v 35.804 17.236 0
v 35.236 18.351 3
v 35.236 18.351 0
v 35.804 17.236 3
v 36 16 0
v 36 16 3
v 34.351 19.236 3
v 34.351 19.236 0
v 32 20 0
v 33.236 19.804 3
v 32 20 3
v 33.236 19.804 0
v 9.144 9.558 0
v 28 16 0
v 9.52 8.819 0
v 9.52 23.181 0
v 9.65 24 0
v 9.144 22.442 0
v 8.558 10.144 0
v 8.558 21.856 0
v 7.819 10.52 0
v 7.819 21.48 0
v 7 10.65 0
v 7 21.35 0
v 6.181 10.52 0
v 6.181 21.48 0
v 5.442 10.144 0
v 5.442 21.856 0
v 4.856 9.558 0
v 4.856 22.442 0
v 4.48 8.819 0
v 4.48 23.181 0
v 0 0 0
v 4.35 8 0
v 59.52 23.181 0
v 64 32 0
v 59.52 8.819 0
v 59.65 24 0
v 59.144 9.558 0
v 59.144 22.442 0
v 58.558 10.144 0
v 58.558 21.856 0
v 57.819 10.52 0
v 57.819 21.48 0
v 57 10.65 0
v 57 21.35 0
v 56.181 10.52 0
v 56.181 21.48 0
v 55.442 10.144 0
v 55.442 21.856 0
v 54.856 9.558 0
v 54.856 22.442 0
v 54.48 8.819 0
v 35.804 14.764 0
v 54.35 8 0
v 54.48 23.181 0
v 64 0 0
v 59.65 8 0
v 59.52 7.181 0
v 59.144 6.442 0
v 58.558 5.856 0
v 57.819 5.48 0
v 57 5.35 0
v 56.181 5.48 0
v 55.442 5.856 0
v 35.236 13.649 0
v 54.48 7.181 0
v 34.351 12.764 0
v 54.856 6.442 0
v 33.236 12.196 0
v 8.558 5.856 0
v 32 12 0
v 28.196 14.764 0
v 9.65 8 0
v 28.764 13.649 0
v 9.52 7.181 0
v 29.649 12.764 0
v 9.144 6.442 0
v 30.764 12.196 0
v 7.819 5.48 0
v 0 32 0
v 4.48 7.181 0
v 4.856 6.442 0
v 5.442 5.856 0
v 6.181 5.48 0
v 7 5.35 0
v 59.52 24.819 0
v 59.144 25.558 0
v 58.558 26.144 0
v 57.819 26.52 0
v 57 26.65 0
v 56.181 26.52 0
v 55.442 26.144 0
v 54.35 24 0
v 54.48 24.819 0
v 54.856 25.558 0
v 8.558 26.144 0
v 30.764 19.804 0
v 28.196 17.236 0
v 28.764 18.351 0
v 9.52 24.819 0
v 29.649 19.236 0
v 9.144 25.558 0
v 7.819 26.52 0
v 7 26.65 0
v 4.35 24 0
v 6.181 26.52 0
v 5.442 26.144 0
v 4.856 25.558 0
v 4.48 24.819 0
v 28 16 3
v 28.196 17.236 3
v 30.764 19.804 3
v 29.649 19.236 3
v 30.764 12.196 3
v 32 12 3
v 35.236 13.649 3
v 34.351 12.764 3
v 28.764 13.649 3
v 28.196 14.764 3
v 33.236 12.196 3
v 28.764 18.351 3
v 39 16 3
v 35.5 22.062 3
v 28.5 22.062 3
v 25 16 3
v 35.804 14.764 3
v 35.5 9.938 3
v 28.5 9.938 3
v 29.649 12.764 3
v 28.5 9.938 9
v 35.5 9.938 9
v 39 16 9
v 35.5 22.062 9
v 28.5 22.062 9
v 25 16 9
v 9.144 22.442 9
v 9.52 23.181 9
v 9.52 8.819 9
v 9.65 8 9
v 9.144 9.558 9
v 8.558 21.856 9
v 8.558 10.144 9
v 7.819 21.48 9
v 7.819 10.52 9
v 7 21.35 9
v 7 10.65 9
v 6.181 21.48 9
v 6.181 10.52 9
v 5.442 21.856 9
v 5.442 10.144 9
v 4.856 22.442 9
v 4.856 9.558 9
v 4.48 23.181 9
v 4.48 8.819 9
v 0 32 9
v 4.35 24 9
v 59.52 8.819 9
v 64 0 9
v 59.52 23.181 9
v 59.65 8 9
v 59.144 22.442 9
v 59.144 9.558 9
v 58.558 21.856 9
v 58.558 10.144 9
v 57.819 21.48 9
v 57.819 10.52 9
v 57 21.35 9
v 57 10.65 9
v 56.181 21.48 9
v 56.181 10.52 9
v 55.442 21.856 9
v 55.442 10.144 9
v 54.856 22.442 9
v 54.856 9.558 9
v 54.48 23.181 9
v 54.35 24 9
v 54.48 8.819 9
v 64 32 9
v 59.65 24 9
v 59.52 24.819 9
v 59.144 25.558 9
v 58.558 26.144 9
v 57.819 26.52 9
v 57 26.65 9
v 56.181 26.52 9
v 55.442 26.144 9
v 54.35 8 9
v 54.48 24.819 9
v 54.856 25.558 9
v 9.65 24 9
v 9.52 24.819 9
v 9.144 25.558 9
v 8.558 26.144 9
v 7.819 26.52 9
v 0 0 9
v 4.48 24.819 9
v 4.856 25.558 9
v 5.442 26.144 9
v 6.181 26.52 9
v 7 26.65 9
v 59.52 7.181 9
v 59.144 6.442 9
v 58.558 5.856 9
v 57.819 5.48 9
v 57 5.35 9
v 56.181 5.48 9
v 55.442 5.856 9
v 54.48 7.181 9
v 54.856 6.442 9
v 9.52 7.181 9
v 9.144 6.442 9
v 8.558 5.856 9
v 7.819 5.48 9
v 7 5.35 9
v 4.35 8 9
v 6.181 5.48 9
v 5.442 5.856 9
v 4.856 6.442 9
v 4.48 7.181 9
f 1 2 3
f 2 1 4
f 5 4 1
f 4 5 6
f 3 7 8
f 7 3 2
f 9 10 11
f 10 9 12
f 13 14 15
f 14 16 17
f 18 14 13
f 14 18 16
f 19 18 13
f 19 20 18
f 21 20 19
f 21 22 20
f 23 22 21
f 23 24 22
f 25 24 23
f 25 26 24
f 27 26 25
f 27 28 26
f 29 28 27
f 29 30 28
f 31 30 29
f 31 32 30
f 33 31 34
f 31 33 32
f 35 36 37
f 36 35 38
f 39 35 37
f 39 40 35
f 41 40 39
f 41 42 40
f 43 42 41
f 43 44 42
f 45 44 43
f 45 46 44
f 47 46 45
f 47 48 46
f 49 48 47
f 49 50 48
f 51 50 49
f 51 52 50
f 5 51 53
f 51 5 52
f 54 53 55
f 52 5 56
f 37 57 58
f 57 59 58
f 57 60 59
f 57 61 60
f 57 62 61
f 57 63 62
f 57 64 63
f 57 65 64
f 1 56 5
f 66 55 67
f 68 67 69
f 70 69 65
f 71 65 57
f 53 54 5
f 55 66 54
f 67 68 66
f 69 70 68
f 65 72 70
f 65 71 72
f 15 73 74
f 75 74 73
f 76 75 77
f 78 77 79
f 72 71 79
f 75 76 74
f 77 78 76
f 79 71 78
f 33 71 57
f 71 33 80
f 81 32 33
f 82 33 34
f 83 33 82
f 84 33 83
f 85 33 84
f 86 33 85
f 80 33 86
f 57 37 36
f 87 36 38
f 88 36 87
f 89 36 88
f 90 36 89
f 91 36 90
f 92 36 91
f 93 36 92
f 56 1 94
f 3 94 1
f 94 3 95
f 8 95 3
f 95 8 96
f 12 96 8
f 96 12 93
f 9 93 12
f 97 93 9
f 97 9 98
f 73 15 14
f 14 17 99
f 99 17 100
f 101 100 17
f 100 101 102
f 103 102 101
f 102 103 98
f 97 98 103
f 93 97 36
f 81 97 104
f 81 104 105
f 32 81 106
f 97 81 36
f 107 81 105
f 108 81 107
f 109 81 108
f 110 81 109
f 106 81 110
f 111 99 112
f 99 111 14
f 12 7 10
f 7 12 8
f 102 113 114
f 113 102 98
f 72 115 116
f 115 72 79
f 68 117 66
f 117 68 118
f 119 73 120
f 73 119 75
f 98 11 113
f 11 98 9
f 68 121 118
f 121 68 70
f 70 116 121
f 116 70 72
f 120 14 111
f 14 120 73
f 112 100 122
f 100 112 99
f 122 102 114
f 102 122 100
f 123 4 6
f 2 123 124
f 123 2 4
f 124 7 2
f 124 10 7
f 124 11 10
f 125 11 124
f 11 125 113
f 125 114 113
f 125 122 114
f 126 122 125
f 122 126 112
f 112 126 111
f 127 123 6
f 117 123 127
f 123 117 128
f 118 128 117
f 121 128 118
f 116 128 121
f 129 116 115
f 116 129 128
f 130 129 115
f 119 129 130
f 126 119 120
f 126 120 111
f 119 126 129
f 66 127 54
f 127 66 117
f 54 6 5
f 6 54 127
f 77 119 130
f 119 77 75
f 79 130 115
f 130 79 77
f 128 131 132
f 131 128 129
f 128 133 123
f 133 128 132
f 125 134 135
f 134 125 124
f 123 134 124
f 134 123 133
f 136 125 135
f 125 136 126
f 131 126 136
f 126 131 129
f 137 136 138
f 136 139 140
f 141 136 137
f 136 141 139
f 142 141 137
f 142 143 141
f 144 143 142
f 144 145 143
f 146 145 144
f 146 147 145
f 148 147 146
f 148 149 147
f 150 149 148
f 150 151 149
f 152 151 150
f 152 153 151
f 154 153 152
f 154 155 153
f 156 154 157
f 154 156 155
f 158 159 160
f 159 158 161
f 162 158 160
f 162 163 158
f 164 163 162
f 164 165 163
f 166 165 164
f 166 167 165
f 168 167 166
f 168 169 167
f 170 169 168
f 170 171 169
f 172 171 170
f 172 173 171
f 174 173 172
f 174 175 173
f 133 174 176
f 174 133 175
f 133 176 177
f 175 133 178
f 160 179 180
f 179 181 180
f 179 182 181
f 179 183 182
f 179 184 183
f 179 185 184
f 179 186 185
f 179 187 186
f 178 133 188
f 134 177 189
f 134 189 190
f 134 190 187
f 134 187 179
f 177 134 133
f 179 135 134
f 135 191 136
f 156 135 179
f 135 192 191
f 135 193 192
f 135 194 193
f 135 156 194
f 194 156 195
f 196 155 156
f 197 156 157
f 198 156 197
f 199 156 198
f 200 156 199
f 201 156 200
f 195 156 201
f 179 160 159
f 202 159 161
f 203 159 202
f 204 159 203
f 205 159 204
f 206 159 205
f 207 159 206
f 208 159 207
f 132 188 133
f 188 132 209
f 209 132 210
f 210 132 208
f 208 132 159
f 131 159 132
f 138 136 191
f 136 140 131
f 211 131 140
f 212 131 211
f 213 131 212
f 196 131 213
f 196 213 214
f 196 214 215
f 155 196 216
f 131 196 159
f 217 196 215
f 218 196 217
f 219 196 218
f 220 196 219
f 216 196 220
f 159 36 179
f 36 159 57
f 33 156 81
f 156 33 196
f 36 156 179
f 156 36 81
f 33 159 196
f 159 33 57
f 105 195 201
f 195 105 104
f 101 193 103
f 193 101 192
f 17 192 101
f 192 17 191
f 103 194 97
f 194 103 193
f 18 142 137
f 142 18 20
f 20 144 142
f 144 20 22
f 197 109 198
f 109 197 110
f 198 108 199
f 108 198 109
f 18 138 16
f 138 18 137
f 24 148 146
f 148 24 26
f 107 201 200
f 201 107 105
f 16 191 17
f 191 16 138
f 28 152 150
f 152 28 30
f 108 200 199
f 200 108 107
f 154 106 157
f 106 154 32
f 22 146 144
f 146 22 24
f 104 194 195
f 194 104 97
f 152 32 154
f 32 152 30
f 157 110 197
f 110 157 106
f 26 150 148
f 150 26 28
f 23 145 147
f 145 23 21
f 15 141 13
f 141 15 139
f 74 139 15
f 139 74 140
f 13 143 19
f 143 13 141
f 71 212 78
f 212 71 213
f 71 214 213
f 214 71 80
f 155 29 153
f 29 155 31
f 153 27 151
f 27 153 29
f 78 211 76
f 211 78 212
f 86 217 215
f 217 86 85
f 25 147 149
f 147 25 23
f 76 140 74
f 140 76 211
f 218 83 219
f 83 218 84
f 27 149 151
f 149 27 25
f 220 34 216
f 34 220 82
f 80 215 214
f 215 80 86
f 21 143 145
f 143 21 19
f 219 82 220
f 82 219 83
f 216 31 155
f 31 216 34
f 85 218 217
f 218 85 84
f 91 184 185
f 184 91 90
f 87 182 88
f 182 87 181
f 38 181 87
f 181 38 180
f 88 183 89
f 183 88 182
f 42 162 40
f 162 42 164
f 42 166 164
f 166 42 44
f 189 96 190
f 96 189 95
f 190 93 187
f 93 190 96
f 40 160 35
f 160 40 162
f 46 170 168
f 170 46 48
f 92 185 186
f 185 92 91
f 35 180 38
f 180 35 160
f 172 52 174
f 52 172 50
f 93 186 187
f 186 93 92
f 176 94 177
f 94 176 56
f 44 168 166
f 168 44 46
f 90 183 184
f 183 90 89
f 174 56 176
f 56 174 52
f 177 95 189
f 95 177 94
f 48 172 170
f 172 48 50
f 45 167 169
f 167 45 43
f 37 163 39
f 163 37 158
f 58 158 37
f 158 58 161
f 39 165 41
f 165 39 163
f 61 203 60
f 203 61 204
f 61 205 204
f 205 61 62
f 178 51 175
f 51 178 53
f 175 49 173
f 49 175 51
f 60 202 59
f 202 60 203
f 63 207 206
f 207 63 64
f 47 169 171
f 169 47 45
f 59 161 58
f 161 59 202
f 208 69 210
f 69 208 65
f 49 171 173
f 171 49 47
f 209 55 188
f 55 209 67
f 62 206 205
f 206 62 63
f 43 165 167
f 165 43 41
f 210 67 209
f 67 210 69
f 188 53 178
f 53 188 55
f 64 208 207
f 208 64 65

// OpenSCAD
// file: common.scad
//GLOBAL VALUES


ear_outer=32; // Outer diameter of each ear
ear_inner=5; // hole for each ear M5

mounting_gap = 6.9; // gap between two ears to mount the light



ear_thick=8;

stacked_len = ear_thick*3;
screw_mount_space = 20;
screw_mount_offset =7;
total_len = stacked_len + screw_mount_space*2;
mounting_diff = 8;

//M3 fastener values

m3_nut_trap_d = 6.7;
m3_nut_thick= 2.4;

m3_bolt_head_d = 5.6;
m3_bolt_thick = 3;

//M5 fastener values

m5_nut_thick = 4;
m5_locknut_thick = 5;
nut_trap_d = 9.7;
bolt_head_d = 8.6;



module bolt_nut(hole_len, bolt_d, flip=false){
    /*
        Create a model for a hole with bolt end on one end and nut hole on the other end.
    Note, this functions doesn't subtract the model it only makes the model
    */
    // currently only implemented for 3mm
    if (flip){
        hole_w_end(hole_len, m3_nut_thick, "hex", bolt_d);
        translate([0,0, hole_len]){
            rotate([180, 0, 0]){
                hole_w_end(hole_len, m3_bolt_thick, "round", bolt_d);
            }
        }
    } else {
        hole_w_end(hole_len, m3_bolt_thick, "round", bolt_d);
        translate([0,0, hole_len]){
            rotate([180, 0, 0]){
                hole_w_end(hole_len, m3_nut_thick, "hex", bolt_d);
            }
        }
    }
}

// More generic functions replacing m5_ hole-making functions
module hole_w_end(hole_len, trap_height, type, bolt_d, flip=false){
    /*
       bolt_d - bolt diameter, i.e. 3, 5 mm
        type -- type of the head hole: 'none', 'hex', 'round
    */
    if (type != "none"){
        cylinder(h=hole_len-trap_height, d=bolt_d, $fn=20);
        if (flip){
            m_recess(trap_height, type, bolt_d);
            translate([0,0,trap_height])
                cylinder(h=hole_len-trap_height, d=bolt_d, $fn=20);

        } else {
                translate([0,0, hole_len - trap_height])
                    m_recess(trap_height, type, bolt_d);
        }
    } else {
        cylinder(h=hole_len, d=bolt_d);
    }
}

module m_recess(height, end_type, bolt_d) {
    // nut/bolt capture hole
    /*
       bolt_d - bolt diameter, i.e. 3, 5 mm
        type -- type of the head hole: 'none', 'hex', 'round
    */
    if (bolt_d >= 3 && bolt_d <= 4){
        //M3
        make_recess(height, end_type, m3_nut_trap_d);
    } else if (bolt_d >= 5 && bolt_d <= 6){
        // M5
        make_recess(height, end_type, nut_trap_d);
    }

}

module make_recess(height, end_type, trap_d){
    rotate([0, 0,90]){
        if (end_type == "hex"){
            cylinder(h=height, d=trap_d, $fn=6);
        } else if (end_type == "round"){
            cylinder(h=height, d=trap_d, $fn=20);
        }
    }
}


//Functions specific to M5 size,
// TODO rewrite as hole_w_end m_recess
module m5_recess(height, end_type) {
    // nut/bolt capture hole
    rotate([0, 0,90]){
        if (end_type == "hex"){
            cylinder(h=height, d=nut_trap_d, $fn=6);
        } else if (end_type == "round"){
            cylinder(h=height, d=nut_trap_d, $fn=20);
        }
    }
}



module m5_hole_w_end(hole_len, trap_height, type){
    //Given hole lenght and trap height create a nut trap hole
    if (type != "none"){
        cylinder(h=hole_len-trap_height, d=5.3, $fn=20); // M5 hole;
            translate([0,0, hole_len-trap_height])
                m5_recess(trap_height, type);
    } else {
        cylinder(h=hole_len, d=5.3); // M5 hole;
    }
}
module m5_hole_w_ends(hole_len, nut_extra=0){
    m5_hole_w_end(hole_len, m5_nut_thick, "round");
    rotate([0, 180, 0])
        translate([0, 0, - hole_len])
            m5_hole_w_end(hole_len, m5_nut_thick + nut_extra, "hex");

}
module set_mounting_hole(x_offset, y_offset, thickness, nut_height, end_type, flip=false){
    /*
    end_type -- end types: - hex, round, none
    */
    translate([x_offset, y_offset, 0]){
        hole_w_end(thickness, nut_height, end_type, 5.3, flip);
    }
}



module mounting_holes_2(fastener_len, nut_height, end_type){
    width_offsetn = 16;
    set_mounting_hole(
        screw_mount_offset,
        width_offset + mounting_diff,
        fastener_len,
        nut_height,
        end_type);

    set_mounting_hole(
        total_len - screw_mount_offset,
        width_offset + mounting_diff,
        fastener_len,
        nut_height,
        end_type);


 }

module mounting_holes(fastener_len, nut_height, end_type, flip=false){
    width_offset = 16;
    // Side towards the beginning
    set_mounting_hole(
        screw_mount_offset,
        width_offset + mounting_diff,
        fastener_len,
        nut_height,
        end_type,
        flip);

    set_mounting_hole(
        screw_mount_offset,
        width_offset - mounting_diff,
        fastener_len,
        nut_height,
        end_type,
        flip);

    // Side towards the end
    set_mounting_hole(
        total_len - screw_mount_offset,
        width_offset + mounting_diff,
        fastener_len,
        nut_height,
        end_type,
        flip);

    set_mounting_hole(
        total_len - screw_mount_offset,
        width_offset - mounting_diff,
        fastener_len,
        nut_height,
        end_type,
        flip);
}
// main file
include <common.scad>;

$fn = 20;


//Diameter of a  4-20 hole
quarter_20_inner_d = 8;
quarter_20_outer_d = 14;

screw_mount_thickness = 12;

module mounting_base(quarter_20_height, quarter_20_space){
    cube_height = quarter_20_height + quarter_20_space;
    //farther side column
    translate([total_len, 0, 0])
    rotate([0, 270, 0])
        cube([cube_height, ear_outer, screw_mount_thickness]);
    // closer side column
    translate([screw_mount_thickness, 0, 0])
    rotate([0, 270, 0])
        cube([cube_height, ear_outer, screw_mount_thickness]);
    //top panel with the hole 
    // TODO: move this into a separate func
        difference(){
            cube([total_len, ear_outer, cube_height]);
            // move to the middle
            union() {
                translate([total_len/2, ear_outer/2, 0]){
                    cylinder(h=quarter_20_space, d=quarter_20_inner_d, $fn=20);
                    translate([0,0, quarter_20_space])
                        cylinder(h=quarter_20_height, d=quarter_20_outer_d, $fn=6);
                }
                
            }
        }
    
}

// spacers
//Thickness 3mm base

quarter_20_height = 6;
/*
Total thickness: 

6mm height of 1/4-20 nut
3mm base
*/

difference(){
    
    //Regular config
    quarter_20_space = 3;
    mounting_base(quarter_20_height, quarter_20_space);
    mounting_holes(quarter_20_height + quarter_20_space, 0, "none");
    
    
    /* //Tripod config */
    /*
    quarter_20_space = 1;
    mounting_base(quarter_20_height, quarter_20_space);
    mounting_holes(quarter_20_height + quarter_20_space, 5, "hex", flip=true);
    */
}
